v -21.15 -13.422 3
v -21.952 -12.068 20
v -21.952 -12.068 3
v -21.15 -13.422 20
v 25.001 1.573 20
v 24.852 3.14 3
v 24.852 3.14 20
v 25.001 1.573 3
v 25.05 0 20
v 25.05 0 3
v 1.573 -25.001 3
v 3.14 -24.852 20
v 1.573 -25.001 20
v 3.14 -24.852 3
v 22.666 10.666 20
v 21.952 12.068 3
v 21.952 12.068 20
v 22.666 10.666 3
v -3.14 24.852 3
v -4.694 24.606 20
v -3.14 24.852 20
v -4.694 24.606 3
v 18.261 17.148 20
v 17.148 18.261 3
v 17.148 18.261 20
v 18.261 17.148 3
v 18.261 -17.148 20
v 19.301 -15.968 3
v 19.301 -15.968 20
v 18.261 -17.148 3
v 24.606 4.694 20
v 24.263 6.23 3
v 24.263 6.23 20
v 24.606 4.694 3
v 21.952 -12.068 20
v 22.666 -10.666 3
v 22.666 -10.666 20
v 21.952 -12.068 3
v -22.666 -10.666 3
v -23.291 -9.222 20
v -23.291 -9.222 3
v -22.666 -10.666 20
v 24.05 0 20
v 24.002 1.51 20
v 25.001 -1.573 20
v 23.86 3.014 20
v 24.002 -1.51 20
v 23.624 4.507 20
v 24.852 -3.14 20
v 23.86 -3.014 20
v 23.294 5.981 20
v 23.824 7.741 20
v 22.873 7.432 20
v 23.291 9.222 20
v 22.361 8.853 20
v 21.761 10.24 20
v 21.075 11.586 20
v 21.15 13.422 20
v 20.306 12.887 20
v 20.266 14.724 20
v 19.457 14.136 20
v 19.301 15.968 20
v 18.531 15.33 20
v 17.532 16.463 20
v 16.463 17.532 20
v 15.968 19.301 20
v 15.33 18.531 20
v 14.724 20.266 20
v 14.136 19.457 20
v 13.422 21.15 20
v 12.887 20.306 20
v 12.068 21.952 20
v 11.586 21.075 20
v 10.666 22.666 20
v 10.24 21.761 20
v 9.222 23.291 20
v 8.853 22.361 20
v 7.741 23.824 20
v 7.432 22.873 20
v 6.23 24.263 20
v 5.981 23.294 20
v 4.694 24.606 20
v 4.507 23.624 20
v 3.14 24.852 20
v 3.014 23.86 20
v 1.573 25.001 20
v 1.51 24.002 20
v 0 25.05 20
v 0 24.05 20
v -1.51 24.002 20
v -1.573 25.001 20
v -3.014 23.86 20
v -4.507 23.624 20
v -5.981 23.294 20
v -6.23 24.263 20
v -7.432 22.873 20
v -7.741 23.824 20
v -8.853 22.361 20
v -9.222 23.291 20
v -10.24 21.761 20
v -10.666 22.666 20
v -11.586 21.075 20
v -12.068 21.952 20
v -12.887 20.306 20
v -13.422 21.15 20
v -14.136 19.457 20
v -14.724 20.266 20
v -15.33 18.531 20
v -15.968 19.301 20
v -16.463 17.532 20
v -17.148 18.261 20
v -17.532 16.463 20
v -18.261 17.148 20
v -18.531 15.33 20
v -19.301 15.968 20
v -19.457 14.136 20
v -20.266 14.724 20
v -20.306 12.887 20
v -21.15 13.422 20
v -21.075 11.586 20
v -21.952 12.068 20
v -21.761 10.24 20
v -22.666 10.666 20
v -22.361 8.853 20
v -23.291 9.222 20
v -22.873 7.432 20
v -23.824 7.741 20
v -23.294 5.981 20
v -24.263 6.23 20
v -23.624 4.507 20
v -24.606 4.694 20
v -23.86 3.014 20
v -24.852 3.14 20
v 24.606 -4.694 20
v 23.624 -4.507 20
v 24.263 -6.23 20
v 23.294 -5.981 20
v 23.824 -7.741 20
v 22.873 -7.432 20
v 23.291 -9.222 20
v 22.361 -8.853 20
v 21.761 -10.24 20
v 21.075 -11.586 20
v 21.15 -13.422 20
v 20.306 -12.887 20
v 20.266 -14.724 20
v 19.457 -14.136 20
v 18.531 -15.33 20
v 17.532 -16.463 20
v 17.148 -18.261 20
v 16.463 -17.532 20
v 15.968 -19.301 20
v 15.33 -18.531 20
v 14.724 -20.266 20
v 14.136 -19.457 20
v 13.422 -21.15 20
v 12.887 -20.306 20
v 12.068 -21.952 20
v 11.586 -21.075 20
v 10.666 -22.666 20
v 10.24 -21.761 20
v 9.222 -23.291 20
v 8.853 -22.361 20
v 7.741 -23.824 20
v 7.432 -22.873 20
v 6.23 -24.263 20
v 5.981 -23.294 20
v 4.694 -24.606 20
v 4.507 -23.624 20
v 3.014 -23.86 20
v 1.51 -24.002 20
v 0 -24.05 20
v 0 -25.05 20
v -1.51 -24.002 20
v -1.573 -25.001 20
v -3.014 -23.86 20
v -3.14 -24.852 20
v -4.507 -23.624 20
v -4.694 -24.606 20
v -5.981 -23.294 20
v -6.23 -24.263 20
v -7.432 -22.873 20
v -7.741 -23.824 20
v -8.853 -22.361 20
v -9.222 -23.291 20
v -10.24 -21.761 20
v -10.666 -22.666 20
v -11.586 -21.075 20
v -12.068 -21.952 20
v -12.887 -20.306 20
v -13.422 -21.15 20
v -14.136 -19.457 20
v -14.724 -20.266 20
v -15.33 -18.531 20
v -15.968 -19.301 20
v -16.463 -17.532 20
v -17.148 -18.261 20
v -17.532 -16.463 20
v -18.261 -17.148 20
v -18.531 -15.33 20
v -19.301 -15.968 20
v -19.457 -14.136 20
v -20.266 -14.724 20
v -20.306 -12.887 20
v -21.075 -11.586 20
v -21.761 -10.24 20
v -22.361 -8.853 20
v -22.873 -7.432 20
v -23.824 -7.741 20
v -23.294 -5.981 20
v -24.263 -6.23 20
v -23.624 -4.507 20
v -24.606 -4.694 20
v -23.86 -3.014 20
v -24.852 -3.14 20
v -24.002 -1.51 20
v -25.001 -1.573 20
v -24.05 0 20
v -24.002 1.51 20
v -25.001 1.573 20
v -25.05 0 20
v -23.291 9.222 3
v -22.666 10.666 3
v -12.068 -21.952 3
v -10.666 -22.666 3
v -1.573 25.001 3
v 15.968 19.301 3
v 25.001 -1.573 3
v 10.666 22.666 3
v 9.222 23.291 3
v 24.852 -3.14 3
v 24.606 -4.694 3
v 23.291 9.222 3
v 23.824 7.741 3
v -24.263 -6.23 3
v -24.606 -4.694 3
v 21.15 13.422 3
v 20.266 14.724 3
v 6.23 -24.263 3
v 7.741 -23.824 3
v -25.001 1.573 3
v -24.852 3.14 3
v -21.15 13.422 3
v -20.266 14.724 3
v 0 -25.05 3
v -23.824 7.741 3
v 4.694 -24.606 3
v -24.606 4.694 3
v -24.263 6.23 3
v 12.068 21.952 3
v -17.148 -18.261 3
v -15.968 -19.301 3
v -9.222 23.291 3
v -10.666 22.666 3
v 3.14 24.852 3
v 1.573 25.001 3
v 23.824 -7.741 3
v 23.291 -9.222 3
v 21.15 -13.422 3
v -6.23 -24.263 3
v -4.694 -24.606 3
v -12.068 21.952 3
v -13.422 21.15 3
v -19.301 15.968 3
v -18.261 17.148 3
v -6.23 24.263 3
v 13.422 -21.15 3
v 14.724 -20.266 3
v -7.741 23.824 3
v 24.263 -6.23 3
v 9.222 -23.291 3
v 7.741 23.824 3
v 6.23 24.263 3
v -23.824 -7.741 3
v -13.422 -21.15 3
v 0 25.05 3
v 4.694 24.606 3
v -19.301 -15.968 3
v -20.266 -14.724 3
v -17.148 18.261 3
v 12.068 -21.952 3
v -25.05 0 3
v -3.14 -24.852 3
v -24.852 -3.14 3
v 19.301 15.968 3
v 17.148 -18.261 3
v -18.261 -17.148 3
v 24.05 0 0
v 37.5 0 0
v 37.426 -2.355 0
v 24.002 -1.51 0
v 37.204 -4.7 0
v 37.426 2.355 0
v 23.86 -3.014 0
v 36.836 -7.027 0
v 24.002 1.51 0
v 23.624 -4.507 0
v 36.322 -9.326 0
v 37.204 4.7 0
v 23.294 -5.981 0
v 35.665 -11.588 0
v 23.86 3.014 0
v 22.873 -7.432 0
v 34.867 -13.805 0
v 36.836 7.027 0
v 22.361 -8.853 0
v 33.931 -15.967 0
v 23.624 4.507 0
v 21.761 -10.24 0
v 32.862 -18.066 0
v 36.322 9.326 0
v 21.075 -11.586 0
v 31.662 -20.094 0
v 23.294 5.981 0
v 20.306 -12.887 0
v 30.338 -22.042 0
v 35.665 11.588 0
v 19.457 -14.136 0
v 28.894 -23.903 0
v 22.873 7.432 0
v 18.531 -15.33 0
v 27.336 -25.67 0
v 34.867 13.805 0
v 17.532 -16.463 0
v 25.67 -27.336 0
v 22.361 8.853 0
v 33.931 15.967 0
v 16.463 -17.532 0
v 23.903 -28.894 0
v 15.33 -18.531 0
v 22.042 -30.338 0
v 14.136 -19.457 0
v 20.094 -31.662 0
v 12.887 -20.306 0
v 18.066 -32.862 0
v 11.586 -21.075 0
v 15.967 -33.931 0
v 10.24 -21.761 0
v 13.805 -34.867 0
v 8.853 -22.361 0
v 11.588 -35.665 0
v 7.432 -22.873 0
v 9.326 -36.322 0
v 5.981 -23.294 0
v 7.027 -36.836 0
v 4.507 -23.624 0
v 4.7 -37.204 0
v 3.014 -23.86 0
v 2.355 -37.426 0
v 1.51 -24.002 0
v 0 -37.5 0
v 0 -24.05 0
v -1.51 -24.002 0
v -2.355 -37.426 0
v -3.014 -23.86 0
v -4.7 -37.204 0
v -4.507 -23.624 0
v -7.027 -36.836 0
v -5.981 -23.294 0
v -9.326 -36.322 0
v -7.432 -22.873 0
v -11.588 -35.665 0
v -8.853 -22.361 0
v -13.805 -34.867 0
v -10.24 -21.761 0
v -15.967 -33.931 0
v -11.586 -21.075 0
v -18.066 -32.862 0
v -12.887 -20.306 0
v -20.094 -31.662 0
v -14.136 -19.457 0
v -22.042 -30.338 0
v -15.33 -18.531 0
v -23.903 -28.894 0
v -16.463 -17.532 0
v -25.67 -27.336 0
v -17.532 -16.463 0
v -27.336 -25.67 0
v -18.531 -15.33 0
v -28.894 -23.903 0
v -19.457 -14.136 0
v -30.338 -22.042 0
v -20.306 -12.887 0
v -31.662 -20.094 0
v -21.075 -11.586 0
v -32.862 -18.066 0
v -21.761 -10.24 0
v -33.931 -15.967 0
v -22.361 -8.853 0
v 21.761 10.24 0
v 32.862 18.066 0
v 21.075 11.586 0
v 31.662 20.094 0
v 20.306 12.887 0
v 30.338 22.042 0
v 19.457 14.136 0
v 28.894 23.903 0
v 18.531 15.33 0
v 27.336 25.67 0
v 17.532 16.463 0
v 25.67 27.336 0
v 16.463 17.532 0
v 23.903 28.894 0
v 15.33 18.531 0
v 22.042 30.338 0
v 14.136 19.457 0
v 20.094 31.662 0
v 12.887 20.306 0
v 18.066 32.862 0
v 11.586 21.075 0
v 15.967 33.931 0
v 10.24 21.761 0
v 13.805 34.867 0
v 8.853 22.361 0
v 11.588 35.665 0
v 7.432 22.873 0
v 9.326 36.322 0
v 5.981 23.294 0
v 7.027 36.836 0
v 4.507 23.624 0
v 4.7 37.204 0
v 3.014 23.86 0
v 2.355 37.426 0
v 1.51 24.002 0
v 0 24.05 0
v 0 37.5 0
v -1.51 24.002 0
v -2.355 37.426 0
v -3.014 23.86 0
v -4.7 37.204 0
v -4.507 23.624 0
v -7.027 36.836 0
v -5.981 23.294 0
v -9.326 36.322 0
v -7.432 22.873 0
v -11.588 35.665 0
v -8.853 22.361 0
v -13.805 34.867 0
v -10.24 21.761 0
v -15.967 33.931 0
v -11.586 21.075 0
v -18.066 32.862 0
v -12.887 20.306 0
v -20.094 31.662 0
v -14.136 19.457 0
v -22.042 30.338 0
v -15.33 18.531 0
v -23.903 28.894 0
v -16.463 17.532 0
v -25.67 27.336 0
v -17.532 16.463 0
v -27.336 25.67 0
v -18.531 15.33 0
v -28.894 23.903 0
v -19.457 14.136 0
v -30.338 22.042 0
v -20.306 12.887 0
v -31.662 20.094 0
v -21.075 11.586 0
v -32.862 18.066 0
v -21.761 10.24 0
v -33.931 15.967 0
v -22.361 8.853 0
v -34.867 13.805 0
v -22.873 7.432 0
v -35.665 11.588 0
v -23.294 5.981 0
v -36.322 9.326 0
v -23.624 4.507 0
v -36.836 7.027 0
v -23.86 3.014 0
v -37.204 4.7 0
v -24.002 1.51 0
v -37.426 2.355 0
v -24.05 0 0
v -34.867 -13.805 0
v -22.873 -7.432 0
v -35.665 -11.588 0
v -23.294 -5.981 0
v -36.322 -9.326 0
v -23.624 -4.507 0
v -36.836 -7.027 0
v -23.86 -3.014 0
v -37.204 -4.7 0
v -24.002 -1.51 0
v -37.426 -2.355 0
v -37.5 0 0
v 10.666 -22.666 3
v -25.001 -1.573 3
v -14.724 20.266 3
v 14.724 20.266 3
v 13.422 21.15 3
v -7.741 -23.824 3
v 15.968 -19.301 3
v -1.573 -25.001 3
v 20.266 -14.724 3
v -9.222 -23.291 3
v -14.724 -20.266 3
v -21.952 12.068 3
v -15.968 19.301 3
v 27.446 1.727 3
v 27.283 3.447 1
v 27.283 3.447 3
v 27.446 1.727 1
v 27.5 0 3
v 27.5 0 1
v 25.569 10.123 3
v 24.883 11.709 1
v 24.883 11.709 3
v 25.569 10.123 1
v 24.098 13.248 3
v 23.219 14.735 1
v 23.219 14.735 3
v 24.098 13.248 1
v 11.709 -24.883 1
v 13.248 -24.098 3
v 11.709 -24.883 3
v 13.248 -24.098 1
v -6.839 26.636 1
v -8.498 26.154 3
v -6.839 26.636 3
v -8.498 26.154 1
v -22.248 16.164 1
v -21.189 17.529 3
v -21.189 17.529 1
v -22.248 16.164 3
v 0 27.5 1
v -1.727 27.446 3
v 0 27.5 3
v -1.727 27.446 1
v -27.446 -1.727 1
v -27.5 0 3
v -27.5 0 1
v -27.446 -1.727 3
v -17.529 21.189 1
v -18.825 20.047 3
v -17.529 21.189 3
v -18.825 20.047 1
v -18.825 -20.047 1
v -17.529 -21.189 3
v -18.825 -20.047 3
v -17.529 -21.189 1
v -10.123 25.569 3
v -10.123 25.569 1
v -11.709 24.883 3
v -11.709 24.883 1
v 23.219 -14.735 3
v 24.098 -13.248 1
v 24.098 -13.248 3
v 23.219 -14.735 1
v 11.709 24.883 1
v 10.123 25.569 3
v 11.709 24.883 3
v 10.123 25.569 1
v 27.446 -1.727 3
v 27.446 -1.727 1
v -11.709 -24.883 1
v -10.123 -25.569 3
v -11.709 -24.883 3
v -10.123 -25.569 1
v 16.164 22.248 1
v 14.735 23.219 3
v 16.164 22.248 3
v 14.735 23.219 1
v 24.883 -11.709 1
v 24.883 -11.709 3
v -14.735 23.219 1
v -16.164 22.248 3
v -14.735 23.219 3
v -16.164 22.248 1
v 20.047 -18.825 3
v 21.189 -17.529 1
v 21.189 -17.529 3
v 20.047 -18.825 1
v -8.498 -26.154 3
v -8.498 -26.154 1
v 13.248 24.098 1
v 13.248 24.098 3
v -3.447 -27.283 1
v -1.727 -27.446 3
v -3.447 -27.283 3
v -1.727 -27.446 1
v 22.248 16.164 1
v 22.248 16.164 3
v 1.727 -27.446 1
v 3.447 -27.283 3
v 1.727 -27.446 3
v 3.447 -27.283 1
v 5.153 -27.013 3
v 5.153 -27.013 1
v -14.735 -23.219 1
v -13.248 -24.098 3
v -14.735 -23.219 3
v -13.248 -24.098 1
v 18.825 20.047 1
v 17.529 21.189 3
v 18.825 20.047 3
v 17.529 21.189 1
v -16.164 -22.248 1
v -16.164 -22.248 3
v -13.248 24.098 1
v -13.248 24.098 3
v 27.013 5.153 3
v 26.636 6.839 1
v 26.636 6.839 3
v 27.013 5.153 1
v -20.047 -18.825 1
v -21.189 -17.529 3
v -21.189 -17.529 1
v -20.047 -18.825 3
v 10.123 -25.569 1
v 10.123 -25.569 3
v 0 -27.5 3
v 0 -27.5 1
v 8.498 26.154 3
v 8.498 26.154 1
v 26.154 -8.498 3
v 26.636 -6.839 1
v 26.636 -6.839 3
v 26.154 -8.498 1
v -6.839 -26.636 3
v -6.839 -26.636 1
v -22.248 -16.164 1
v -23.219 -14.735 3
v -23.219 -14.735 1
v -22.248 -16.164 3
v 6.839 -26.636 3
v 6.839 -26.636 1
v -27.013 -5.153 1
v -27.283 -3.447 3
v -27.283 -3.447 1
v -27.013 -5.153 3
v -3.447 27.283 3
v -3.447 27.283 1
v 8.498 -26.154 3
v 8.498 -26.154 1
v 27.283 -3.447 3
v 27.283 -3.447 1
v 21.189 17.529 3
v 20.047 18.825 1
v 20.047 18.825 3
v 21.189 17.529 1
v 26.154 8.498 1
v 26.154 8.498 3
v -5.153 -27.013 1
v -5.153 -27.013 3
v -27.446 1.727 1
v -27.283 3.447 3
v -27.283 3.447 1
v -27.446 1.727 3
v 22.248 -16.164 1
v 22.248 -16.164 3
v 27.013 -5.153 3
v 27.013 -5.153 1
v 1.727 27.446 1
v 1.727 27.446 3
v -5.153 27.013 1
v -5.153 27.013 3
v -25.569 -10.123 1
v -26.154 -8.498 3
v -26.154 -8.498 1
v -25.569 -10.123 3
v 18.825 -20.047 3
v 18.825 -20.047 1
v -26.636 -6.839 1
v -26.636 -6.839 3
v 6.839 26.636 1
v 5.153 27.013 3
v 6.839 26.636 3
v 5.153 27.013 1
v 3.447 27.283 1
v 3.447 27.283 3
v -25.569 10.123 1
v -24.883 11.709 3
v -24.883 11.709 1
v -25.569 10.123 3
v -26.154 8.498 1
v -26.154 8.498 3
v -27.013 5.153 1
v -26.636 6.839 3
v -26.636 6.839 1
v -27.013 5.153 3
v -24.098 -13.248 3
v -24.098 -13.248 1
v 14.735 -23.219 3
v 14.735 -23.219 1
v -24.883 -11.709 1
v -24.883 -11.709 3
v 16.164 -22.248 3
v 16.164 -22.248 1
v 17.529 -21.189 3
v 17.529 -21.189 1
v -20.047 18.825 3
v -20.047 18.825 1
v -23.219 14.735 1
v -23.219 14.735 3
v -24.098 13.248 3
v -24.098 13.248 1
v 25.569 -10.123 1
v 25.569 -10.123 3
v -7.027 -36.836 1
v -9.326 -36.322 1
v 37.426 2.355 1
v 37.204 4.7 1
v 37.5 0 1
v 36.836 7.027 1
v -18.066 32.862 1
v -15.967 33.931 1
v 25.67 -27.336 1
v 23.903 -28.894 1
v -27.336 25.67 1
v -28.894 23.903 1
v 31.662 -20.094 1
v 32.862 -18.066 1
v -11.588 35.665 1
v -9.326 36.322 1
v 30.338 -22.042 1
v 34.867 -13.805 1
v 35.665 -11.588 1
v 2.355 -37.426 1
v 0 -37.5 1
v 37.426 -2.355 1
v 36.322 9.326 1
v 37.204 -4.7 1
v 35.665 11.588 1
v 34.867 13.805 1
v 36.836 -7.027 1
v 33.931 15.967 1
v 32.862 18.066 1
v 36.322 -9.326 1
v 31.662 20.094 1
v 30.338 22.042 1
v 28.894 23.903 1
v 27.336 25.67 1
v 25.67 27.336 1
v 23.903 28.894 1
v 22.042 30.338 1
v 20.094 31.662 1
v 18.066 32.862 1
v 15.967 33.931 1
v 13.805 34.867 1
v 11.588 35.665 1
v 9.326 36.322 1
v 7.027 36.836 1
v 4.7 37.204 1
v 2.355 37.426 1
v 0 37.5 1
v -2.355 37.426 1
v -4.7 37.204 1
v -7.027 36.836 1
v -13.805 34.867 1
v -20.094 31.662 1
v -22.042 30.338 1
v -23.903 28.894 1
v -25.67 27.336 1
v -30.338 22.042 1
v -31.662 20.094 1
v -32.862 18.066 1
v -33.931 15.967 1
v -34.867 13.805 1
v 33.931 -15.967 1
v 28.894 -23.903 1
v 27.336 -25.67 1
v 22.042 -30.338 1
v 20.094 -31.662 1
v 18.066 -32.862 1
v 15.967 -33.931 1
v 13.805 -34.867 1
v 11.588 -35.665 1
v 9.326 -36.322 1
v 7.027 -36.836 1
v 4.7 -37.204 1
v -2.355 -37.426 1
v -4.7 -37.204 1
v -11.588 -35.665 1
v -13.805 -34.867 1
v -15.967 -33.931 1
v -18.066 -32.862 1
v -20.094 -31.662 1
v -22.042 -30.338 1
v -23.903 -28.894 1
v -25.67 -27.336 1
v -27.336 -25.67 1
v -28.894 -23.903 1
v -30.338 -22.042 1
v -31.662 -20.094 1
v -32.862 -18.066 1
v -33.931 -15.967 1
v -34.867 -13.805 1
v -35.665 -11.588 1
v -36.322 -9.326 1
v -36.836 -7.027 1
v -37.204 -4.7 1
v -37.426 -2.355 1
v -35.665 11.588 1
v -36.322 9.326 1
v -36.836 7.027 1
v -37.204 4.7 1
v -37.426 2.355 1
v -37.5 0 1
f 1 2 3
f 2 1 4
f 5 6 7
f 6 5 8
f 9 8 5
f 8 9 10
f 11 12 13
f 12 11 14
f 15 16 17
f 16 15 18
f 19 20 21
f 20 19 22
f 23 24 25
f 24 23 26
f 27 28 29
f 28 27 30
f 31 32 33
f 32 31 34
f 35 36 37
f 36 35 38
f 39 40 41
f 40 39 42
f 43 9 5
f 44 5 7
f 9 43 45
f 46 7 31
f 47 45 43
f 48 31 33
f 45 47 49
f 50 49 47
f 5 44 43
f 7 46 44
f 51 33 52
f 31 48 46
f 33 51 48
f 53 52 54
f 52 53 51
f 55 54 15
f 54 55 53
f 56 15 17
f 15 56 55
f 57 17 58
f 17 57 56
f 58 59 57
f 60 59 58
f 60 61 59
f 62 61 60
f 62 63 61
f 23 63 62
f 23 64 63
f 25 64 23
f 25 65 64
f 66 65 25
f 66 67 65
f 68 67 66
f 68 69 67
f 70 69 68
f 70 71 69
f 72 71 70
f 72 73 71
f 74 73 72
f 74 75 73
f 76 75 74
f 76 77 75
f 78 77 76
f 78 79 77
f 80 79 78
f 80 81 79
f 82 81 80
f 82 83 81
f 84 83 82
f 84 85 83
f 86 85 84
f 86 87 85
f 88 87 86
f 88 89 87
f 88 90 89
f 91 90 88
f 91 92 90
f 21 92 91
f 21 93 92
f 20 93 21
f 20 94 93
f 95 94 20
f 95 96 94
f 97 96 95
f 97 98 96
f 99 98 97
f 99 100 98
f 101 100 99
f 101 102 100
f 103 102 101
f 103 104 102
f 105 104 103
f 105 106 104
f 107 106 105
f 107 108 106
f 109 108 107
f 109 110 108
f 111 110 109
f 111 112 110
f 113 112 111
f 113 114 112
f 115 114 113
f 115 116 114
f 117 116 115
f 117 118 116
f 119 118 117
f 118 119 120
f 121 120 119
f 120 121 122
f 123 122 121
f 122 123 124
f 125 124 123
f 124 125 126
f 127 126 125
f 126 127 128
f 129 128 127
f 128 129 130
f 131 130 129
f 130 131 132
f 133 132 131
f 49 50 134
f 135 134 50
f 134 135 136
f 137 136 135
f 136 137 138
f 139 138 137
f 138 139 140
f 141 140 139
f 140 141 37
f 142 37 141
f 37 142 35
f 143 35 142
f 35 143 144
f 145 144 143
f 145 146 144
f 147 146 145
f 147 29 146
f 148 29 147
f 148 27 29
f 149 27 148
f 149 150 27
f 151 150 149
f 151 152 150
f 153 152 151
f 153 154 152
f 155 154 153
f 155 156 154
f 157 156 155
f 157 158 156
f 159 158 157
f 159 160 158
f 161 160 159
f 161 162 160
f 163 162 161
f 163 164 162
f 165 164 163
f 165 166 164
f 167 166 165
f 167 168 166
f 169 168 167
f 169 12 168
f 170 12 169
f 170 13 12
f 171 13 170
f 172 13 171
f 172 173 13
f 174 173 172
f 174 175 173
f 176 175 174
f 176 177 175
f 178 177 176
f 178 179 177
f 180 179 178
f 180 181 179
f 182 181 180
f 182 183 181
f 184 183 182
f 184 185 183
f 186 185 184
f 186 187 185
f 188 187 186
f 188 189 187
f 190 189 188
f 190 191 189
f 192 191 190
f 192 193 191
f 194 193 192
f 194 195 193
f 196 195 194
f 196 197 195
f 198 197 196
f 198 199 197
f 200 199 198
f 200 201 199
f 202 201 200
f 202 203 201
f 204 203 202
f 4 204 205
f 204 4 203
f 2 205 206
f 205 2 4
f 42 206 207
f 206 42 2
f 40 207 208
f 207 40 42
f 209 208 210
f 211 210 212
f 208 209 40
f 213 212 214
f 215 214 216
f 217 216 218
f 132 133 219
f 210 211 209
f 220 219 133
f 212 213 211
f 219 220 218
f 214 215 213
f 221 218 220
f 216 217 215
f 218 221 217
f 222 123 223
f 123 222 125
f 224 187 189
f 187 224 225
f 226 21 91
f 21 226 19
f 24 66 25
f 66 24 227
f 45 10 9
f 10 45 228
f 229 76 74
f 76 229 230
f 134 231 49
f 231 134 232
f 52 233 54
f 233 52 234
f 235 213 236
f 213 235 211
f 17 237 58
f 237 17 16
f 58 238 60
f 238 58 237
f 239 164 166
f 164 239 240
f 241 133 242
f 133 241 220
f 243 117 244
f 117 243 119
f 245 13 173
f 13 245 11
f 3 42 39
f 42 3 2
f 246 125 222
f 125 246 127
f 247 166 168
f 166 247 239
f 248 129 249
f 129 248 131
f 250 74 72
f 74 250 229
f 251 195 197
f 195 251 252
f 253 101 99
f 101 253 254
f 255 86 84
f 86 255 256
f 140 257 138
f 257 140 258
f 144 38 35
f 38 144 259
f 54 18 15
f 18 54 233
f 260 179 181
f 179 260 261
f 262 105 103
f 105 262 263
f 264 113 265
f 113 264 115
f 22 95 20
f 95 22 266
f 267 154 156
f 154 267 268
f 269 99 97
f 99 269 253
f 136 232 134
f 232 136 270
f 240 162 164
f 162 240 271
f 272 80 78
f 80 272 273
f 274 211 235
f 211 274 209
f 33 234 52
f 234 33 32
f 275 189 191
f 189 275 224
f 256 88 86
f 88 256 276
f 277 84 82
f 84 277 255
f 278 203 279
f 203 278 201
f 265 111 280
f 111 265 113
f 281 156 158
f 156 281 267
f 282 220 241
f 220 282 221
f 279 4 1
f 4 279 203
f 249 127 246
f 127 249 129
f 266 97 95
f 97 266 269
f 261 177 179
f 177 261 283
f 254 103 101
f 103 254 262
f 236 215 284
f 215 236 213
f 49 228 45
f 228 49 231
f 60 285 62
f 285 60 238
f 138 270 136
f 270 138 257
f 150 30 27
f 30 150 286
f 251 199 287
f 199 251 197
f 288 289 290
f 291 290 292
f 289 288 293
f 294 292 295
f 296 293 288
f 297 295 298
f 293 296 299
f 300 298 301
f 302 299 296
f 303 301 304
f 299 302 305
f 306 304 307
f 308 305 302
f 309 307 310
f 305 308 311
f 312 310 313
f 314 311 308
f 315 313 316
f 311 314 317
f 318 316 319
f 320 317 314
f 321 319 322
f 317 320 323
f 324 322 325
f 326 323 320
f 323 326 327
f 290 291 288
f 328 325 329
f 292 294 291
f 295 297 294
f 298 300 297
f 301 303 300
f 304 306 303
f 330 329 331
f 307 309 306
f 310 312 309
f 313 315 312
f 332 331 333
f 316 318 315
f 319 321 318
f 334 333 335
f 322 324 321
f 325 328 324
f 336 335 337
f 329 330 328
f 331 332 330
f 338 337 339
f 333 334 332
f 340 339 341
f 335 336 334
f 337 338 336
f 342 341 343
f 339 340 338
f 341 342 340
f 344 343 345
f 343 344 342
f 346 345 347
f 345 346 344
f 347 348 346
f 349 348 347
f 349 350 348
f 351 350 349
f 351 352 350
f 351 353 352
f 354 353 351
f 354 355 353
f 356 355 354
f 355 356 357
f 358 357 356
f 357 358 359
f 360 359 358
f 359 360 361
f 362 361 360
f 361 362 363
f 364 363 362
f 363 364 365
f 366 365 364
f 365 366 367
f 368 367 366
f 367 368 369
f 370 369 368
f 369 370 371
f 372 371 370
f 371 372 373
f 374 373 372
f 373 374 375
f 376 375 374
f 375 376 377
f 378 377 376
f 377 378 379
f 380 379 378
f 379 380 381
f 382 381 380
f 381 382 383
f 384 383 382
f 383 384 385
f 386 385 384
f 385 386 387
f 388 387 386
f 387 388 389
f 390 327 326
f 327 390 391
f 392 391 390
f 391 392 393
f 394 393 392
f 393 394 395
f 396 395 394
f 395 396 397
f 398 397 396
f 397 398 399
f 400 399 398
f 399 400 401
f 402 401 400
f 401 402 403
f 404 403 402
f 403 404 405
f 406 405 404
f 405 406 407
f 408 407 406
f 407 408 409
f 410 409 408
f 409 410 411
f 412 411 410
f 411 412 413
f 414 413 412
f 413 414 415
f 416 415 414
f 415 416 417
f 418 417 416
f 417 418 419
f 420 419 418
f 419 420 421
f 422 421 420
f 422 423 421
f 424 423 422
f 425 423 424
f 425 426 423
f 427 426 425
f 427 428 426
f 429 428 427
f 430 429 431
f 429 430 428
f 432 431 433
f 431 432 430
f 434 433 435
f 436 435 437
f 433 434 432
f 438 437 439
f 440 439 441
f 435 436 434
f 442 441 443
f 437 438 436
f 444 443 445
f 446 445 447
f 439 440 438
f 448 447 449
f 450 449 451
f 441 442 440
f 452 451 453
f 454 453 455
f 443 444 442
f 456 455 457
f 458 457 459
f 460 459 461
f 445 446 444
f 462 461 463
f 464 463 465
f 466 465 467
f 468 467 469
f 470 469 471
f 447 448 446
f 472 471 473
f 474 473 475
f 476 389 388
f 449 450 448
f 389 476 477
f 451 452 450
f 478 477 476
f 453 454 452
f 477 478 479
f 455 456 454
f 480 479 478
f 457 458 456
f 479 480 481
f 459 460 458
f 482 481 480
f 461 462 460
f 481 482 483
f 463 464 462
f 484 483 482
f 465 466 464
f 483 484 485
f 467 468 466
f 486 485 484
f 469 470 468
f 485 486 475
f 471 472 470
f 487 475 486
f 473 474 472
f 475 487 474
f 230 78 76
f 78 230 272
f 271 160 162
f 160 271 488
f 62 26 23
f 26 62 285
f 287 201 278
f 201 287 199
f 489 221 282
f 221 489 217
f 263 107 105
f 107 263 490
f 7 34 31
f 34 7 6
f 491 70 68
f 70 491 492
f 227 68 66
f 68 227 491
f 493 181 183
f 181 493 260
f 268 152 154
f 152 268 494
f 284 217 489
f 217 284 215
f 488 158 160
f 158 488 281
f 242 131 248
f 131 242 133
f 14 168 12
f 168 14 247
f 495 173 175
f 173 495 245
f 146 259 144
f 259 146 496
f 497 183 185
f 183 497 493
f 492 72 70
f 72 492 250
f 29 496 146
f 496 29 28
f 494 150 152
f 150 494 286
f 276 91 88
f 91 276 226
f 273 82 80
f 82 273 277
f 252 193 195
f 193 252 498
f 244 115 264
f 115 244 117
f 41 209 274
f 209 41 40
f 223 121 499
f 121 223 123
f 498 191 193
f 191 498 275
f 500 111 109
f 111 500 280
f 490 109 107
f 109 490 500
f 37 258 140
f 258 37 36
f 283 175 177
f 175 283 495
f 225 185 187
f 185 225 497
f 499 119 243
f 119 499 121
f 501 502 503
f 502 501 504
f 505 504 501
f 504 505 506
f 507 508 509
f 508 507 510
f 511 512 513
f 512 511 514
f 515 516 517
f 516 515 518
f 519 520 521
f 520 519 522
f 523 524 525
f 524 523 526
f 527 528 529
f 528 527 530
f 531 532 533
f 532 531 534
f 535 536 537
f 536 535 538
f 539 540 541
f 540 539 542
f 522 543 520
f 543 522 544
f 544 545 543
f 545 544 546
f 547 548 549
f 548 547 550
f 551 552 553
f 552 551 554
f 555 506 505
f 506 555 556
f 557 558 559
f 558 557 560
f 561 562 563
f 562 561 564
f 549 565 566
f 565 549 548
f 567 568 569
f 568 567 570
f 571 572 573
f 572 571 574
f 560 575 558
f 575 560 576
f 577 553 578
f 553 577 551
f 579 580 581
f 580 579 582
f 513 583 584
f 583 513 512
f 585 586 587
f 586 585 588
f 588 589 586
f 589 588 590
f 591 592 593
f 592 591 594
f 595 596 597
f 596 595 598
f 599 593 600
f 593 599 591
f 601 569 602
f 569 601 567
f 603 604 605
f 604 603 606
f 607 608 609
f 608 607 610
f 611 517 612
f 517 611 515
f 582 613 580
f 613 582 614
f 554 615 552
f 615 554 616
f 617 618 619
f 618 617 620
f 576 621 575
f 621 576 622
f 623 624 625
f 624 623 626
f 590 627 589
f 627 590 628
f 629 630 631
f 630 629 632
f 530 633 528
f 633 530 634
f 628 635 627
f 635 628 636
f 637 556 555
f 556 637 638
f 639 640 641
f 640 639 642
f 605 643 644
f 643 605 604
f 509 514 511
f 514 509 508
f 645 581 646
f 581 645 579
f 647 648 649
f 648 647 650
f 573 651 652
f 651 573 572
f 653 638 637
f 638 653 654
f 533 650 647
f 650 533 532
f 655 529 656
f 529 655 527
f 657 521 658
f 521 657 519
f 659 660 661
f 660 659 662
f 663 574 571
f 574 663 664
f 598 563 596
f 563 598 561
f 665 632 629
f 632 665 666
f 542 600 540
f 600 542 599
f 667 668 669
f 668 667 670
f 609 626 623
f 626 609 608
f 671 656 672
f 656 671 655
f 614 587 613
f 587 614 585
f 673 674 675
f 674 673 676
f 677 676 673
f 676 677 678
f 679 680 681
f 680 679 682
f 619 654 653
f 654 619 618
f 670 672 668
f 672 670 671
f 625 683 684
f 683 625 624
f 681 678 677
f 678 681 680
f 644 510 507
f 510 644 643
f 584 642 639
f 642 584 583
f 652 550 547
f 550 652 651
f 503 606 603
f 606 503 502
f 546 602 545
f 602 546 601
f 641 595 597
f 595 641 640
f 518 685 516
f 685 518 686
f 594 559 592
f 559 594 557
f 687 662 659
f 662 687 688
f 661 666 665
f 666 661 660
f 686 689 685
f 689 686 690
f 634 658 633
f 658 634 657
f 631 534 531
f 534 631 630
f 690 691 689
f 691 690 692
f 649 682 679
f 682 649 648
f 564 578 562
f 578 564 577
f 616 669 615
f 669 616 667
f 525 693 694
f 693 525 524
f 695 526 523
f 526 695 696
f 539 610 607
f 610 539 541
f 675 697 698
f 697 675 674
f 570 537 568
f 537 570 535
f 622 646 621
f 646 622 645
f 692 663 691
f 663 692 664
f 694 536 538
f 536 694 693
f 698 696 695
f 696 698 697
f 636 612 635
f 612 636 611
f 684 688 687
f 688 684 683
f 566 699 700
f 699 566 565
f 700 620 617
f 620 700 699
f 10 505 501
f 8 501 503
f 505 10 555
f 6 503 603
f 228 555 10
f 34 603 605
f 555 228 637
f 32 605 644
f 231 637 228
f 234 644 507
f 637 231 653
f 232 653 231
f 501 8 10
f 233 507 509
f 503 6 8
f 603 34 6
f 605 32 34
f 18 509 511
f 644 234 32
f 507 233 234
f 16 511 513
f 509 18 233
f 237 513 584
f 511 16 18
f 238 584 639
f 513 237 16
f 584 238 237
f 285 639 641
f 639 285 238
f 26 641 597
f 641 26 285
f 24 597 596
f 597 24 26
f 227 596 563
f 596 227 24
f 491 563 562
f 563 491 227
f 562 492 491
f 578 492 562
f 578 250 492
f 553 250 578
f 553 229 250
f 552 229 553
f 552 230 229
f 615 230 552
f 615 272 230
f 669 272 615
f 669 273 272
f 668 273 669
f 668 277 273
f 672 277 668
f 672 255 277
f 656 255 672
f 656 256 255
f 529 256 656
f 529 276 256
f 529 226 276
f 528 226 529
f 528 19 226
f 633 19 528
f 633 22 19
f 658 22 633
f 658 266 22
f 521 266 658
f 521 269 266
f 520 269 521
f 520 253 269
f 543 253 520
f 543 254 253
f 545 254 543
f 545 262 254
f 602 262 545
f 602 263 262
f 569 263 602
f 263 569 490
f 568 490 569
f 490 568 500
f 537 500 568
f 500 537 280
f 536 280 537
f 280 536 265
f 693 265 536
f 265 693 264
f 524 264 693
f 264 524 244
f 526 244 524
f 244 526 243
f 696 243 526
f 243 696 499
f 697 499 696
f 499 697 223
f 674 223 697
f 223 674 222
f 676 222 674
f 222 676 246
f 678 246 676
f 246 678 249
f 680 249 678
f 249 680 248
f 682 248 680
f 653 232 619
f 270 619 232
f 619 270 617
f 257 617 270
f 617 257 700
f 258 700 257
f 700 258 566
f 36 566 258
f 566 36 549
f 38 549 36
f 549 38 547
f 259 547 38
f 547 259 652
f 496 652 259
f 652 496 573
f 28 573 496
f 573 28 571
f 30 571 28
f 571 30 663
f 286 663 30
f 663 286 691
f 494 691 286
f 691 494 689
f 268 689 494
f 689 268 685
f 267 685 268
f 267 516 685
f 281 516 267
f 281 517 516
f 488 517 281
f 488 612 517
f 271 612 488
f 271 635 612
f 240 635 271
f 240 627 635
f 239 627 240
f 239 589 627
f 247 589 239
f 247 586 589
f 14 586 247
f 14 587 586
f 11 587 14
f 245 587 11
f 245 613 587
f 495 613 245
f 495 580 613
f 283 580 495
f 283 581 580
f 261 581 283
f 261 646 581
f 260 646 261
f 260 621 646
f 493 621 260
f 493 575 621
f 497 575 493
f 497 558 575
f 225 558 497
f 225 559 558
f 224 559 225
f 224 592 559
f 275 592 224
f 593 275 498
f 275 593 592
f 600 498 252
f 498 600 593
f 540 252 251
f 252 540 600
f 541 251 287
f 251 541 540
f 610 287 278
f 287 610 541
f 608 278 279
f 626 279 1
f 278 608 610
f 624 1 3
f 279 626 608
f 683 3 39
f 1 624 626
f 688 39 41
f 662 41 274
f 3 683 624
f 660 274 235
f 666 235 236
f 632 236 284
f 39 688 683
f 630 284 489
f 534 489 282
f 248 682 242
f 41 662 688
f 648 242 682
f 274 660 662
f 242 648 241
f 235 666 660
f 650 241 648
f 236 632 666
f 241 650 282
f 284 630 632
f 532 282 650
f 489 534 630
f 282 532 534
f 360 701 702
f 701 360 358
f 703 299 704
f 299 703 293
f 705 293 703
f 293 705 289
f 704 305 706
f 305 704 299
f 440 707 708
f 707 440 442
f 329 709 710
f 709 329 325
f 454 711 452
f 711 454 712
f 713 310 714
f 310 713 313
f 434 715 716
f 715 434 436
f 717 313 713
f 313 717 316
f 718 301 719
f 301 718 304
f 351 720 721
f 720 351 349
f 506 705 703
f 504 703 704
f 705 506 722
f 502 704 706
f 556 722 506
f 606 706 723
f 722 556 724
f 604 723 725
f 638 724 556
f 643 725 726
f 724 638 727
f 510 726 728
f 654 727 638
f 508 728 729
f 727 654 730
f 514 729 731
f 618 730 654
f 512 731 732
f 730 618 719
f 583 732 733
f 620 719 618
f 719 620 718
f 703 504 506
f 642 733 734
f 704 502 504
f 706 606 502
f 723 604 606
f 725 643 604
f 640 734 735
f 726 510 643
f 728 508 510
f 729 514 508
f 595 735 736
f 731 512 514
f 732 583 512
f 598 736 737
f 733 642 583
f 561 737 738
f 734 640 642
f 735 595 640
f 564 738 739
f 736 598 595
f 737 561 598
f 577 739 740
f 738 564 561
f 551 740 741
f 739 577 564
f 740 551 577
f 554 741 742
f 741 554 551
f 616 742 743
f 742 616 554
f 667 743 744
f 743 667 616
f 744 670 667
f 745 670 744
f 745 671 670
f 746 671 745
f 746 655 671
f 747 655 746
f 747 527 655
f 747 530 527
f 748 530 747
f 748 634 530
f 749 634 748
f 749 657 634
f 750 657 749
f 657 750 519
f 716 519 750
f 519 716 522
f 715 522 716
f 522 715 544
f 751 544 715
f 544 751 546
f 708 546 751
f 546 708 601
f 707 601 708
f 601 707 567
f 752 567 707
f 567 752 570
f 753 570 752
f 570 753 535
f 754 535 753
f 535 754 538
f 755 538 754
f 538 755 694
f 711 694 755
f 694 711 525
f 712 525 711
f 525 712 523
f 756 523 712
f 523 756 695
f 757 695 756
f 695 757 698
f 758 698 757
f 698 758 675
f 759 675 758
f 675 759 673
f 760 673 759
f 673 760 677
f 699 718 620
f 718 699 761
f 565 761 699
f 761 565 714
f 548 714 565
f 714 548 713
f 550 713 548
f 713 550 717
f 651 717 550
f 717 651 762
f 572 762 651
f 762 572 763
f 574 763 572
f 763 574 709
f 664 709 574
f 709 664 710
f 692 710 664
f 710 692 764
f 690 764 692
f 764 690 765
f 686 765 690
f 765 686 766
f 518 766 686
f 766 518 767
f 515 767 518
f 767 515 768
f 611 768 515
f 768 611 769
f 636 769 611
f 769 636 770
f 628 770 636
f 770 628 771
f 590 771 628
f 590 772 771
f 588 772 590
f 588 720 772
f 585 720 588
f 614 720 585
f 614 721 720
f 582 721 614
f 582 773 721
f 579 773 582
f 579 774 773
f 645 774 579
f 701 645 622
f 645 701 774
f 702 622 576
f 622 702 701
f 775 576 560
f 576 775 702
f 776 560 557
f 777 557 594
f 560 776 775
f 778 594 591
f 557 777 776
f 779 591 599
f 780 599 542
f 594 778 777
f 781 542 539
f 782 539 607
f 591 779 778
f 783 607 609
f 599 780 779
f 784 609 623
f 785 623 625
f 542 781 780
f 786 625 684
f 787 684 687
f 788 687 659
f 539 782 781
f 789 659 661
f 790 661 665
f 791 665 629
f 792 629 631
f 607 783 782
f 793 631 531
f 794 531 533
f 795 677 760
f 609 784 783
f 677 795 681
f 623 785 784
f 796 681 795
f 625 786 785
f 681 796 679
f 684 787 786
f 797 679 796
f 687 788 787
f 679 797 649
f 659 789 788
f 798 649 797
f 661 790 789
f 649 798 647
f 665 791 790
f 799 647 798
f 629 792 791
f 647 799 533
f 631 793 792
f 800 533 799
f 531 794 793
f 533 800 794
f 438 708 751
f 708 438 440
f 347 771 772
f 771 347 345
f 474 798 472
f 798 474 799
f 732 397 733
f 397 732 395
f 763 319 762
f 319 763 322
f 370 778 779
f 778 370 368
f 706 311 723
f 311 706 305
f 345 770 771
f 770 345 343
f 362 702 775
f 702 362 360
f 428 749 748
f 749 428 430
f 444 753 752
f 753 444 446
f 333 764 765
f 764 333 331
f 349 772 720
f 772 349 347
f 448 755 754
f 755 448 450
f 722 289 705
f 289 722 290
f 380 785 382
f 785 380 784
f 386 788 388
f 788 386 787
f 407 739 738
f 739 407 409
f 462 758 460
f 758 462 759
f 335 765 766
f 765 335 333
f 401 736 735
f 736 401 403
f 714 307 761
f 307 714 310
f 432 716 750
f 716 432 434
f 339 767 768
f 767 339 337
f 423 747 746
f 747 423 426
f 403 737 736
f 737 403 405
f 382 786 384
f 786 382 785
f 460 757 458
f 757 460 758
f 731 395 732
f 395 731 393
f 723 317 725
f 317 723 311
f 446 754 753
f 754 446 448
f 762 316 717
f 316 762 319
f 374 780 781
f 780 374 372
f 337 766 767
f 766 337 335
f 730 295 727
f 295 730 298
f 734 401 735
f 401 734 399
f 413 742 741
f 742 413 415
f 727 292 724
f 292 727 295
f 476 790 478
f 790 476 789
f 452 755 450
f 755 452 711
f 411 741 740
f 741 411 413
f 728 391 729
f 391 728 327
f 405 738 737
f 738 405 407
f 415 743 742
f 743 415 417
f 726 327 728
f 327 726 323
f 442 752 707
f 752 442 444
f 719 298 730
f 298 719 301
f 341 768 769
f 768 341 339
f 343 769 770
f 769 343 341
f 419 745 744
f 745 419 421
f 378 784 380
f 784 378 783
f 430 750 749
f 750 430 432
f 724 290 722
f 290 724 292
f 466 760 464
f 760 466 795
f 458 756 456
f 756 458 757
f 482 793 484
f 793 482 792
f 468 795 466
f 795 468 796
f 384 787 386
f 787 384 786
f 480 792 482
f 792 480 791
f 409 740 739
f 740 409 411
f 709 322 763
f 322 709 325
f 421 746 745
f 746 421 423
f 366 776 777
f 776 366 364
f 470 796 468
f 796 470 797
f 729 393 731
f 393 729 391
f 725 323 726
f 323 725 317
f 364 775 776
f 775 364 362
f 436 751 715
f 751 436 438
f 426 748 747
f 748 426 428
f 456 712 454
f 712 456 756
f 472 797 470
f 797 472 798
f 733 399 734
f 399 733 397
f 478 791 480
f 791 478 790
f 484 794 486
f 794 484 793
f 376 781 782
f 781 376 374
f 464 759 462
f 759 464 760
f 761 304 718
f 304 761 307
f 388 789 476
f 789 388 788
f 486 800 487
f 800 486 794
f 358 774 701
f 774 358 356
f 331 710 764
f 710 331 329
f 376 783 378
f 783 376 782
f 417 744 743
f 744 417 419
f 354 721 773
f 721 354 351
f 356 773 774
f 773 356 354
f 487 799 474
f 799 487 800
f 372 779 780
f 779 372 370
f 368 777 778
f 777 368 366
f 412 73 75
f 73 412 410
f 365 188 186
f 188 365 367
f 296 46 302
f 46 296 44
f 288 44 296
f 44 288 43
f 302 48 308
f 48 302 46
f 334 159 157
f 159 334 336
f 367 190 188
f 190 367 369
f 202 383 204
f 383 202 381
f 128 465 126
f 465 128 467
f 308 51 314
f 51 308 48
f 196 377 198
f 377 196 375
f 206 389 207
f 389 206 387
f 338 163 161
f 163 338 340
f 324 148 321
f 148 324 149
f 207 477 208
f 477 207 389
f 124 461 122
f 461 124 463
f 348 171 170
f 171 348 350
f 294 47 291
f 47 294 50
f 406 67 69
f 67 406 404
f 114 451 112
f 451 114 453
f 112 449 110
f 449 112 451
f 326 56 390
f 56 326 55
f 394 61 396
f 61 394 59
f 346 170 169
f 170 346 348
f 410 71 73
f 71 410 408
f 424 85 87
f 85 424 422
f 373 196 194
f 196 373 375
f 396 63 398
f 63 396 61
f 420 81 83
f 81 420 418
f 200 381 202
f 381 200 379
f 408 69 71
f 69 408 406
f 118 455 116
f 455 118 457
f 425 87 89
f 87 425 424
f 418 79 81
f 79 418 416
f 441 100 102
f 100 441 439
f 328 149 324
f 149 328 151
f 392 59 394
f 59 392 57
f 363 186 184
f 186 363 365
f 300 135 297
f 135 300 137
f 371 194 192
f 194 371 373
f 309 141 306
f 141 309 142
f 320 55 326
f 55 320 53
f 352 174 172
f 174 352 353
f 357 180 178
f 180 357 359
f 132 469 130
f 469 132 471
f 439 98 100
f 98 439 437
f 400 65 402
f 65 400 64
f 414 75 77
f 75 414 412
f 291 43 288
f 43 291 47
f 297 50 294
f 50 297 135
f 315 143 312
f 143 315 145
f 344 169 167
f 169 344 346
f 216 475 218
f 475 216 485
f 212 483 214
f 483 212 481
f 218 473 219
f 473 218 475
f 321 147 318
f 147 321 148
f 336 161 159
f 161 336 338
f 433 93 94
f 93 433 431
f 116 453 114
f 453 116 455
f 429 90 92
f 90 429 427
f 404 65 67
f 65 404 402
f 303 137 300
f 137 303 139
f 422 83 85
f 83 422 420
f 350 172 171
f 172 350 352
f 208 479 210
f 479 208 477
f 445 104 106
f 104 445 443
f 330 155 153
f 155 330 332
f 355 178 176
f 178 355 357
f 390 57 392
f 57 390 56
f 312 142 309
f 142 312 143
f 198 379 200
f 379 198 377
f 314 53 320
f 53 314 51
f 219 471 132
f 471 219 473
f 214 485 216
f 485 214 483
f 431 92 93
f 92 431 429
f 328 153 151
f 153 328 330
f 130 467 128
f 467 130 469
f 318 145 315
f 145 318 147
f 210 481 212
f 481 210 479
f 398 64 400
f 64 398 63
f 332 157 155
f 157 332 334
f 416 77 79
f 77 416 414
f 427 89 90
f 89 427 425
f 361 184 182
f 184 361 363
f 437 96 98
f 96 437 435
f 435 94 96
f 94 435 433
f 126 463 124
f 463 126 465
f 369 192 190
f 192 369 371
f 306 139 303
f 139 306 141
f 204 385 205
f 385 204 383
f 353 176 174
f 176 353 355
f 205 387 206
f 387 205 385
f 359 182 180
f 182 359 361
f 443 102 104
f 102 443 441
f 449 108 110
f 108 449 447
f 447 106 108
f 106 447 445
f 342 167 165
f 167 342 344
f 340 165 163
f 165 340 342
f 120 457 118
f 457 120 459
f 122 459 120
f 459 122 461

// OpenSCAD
rewinderDiameter = 48.1;
spoolDiameter = 55;
spoolOverlap = 10;

wallWidth=1;

hubHeight = 20;
spoolCollarHeight = 3;
outerSpool = 1;

$fn=100;



// Yay! Let's start!
generateOutput();




module generateOutput(){
    
    rewinderRadius = rewinderDiameter/2 + 1;
    spoolRadius = spoolDiameter/2;
    overlapRadius = spoolRadius + spoolOverlap;


    
        difference() {
          union() {
            cylinder(h=hubHeight,r=rewinderRadius,center=false);
            cylinder(h=spoolCollarHeight,r=spoolRadius,center=false);
            cylinder(h=outerSpool, r=overlapRadius,center=false );
         
          }
             cylinder(h=hubHeight*2+1,r=rewinderRadius-1,center=true);
         
        }
  }
